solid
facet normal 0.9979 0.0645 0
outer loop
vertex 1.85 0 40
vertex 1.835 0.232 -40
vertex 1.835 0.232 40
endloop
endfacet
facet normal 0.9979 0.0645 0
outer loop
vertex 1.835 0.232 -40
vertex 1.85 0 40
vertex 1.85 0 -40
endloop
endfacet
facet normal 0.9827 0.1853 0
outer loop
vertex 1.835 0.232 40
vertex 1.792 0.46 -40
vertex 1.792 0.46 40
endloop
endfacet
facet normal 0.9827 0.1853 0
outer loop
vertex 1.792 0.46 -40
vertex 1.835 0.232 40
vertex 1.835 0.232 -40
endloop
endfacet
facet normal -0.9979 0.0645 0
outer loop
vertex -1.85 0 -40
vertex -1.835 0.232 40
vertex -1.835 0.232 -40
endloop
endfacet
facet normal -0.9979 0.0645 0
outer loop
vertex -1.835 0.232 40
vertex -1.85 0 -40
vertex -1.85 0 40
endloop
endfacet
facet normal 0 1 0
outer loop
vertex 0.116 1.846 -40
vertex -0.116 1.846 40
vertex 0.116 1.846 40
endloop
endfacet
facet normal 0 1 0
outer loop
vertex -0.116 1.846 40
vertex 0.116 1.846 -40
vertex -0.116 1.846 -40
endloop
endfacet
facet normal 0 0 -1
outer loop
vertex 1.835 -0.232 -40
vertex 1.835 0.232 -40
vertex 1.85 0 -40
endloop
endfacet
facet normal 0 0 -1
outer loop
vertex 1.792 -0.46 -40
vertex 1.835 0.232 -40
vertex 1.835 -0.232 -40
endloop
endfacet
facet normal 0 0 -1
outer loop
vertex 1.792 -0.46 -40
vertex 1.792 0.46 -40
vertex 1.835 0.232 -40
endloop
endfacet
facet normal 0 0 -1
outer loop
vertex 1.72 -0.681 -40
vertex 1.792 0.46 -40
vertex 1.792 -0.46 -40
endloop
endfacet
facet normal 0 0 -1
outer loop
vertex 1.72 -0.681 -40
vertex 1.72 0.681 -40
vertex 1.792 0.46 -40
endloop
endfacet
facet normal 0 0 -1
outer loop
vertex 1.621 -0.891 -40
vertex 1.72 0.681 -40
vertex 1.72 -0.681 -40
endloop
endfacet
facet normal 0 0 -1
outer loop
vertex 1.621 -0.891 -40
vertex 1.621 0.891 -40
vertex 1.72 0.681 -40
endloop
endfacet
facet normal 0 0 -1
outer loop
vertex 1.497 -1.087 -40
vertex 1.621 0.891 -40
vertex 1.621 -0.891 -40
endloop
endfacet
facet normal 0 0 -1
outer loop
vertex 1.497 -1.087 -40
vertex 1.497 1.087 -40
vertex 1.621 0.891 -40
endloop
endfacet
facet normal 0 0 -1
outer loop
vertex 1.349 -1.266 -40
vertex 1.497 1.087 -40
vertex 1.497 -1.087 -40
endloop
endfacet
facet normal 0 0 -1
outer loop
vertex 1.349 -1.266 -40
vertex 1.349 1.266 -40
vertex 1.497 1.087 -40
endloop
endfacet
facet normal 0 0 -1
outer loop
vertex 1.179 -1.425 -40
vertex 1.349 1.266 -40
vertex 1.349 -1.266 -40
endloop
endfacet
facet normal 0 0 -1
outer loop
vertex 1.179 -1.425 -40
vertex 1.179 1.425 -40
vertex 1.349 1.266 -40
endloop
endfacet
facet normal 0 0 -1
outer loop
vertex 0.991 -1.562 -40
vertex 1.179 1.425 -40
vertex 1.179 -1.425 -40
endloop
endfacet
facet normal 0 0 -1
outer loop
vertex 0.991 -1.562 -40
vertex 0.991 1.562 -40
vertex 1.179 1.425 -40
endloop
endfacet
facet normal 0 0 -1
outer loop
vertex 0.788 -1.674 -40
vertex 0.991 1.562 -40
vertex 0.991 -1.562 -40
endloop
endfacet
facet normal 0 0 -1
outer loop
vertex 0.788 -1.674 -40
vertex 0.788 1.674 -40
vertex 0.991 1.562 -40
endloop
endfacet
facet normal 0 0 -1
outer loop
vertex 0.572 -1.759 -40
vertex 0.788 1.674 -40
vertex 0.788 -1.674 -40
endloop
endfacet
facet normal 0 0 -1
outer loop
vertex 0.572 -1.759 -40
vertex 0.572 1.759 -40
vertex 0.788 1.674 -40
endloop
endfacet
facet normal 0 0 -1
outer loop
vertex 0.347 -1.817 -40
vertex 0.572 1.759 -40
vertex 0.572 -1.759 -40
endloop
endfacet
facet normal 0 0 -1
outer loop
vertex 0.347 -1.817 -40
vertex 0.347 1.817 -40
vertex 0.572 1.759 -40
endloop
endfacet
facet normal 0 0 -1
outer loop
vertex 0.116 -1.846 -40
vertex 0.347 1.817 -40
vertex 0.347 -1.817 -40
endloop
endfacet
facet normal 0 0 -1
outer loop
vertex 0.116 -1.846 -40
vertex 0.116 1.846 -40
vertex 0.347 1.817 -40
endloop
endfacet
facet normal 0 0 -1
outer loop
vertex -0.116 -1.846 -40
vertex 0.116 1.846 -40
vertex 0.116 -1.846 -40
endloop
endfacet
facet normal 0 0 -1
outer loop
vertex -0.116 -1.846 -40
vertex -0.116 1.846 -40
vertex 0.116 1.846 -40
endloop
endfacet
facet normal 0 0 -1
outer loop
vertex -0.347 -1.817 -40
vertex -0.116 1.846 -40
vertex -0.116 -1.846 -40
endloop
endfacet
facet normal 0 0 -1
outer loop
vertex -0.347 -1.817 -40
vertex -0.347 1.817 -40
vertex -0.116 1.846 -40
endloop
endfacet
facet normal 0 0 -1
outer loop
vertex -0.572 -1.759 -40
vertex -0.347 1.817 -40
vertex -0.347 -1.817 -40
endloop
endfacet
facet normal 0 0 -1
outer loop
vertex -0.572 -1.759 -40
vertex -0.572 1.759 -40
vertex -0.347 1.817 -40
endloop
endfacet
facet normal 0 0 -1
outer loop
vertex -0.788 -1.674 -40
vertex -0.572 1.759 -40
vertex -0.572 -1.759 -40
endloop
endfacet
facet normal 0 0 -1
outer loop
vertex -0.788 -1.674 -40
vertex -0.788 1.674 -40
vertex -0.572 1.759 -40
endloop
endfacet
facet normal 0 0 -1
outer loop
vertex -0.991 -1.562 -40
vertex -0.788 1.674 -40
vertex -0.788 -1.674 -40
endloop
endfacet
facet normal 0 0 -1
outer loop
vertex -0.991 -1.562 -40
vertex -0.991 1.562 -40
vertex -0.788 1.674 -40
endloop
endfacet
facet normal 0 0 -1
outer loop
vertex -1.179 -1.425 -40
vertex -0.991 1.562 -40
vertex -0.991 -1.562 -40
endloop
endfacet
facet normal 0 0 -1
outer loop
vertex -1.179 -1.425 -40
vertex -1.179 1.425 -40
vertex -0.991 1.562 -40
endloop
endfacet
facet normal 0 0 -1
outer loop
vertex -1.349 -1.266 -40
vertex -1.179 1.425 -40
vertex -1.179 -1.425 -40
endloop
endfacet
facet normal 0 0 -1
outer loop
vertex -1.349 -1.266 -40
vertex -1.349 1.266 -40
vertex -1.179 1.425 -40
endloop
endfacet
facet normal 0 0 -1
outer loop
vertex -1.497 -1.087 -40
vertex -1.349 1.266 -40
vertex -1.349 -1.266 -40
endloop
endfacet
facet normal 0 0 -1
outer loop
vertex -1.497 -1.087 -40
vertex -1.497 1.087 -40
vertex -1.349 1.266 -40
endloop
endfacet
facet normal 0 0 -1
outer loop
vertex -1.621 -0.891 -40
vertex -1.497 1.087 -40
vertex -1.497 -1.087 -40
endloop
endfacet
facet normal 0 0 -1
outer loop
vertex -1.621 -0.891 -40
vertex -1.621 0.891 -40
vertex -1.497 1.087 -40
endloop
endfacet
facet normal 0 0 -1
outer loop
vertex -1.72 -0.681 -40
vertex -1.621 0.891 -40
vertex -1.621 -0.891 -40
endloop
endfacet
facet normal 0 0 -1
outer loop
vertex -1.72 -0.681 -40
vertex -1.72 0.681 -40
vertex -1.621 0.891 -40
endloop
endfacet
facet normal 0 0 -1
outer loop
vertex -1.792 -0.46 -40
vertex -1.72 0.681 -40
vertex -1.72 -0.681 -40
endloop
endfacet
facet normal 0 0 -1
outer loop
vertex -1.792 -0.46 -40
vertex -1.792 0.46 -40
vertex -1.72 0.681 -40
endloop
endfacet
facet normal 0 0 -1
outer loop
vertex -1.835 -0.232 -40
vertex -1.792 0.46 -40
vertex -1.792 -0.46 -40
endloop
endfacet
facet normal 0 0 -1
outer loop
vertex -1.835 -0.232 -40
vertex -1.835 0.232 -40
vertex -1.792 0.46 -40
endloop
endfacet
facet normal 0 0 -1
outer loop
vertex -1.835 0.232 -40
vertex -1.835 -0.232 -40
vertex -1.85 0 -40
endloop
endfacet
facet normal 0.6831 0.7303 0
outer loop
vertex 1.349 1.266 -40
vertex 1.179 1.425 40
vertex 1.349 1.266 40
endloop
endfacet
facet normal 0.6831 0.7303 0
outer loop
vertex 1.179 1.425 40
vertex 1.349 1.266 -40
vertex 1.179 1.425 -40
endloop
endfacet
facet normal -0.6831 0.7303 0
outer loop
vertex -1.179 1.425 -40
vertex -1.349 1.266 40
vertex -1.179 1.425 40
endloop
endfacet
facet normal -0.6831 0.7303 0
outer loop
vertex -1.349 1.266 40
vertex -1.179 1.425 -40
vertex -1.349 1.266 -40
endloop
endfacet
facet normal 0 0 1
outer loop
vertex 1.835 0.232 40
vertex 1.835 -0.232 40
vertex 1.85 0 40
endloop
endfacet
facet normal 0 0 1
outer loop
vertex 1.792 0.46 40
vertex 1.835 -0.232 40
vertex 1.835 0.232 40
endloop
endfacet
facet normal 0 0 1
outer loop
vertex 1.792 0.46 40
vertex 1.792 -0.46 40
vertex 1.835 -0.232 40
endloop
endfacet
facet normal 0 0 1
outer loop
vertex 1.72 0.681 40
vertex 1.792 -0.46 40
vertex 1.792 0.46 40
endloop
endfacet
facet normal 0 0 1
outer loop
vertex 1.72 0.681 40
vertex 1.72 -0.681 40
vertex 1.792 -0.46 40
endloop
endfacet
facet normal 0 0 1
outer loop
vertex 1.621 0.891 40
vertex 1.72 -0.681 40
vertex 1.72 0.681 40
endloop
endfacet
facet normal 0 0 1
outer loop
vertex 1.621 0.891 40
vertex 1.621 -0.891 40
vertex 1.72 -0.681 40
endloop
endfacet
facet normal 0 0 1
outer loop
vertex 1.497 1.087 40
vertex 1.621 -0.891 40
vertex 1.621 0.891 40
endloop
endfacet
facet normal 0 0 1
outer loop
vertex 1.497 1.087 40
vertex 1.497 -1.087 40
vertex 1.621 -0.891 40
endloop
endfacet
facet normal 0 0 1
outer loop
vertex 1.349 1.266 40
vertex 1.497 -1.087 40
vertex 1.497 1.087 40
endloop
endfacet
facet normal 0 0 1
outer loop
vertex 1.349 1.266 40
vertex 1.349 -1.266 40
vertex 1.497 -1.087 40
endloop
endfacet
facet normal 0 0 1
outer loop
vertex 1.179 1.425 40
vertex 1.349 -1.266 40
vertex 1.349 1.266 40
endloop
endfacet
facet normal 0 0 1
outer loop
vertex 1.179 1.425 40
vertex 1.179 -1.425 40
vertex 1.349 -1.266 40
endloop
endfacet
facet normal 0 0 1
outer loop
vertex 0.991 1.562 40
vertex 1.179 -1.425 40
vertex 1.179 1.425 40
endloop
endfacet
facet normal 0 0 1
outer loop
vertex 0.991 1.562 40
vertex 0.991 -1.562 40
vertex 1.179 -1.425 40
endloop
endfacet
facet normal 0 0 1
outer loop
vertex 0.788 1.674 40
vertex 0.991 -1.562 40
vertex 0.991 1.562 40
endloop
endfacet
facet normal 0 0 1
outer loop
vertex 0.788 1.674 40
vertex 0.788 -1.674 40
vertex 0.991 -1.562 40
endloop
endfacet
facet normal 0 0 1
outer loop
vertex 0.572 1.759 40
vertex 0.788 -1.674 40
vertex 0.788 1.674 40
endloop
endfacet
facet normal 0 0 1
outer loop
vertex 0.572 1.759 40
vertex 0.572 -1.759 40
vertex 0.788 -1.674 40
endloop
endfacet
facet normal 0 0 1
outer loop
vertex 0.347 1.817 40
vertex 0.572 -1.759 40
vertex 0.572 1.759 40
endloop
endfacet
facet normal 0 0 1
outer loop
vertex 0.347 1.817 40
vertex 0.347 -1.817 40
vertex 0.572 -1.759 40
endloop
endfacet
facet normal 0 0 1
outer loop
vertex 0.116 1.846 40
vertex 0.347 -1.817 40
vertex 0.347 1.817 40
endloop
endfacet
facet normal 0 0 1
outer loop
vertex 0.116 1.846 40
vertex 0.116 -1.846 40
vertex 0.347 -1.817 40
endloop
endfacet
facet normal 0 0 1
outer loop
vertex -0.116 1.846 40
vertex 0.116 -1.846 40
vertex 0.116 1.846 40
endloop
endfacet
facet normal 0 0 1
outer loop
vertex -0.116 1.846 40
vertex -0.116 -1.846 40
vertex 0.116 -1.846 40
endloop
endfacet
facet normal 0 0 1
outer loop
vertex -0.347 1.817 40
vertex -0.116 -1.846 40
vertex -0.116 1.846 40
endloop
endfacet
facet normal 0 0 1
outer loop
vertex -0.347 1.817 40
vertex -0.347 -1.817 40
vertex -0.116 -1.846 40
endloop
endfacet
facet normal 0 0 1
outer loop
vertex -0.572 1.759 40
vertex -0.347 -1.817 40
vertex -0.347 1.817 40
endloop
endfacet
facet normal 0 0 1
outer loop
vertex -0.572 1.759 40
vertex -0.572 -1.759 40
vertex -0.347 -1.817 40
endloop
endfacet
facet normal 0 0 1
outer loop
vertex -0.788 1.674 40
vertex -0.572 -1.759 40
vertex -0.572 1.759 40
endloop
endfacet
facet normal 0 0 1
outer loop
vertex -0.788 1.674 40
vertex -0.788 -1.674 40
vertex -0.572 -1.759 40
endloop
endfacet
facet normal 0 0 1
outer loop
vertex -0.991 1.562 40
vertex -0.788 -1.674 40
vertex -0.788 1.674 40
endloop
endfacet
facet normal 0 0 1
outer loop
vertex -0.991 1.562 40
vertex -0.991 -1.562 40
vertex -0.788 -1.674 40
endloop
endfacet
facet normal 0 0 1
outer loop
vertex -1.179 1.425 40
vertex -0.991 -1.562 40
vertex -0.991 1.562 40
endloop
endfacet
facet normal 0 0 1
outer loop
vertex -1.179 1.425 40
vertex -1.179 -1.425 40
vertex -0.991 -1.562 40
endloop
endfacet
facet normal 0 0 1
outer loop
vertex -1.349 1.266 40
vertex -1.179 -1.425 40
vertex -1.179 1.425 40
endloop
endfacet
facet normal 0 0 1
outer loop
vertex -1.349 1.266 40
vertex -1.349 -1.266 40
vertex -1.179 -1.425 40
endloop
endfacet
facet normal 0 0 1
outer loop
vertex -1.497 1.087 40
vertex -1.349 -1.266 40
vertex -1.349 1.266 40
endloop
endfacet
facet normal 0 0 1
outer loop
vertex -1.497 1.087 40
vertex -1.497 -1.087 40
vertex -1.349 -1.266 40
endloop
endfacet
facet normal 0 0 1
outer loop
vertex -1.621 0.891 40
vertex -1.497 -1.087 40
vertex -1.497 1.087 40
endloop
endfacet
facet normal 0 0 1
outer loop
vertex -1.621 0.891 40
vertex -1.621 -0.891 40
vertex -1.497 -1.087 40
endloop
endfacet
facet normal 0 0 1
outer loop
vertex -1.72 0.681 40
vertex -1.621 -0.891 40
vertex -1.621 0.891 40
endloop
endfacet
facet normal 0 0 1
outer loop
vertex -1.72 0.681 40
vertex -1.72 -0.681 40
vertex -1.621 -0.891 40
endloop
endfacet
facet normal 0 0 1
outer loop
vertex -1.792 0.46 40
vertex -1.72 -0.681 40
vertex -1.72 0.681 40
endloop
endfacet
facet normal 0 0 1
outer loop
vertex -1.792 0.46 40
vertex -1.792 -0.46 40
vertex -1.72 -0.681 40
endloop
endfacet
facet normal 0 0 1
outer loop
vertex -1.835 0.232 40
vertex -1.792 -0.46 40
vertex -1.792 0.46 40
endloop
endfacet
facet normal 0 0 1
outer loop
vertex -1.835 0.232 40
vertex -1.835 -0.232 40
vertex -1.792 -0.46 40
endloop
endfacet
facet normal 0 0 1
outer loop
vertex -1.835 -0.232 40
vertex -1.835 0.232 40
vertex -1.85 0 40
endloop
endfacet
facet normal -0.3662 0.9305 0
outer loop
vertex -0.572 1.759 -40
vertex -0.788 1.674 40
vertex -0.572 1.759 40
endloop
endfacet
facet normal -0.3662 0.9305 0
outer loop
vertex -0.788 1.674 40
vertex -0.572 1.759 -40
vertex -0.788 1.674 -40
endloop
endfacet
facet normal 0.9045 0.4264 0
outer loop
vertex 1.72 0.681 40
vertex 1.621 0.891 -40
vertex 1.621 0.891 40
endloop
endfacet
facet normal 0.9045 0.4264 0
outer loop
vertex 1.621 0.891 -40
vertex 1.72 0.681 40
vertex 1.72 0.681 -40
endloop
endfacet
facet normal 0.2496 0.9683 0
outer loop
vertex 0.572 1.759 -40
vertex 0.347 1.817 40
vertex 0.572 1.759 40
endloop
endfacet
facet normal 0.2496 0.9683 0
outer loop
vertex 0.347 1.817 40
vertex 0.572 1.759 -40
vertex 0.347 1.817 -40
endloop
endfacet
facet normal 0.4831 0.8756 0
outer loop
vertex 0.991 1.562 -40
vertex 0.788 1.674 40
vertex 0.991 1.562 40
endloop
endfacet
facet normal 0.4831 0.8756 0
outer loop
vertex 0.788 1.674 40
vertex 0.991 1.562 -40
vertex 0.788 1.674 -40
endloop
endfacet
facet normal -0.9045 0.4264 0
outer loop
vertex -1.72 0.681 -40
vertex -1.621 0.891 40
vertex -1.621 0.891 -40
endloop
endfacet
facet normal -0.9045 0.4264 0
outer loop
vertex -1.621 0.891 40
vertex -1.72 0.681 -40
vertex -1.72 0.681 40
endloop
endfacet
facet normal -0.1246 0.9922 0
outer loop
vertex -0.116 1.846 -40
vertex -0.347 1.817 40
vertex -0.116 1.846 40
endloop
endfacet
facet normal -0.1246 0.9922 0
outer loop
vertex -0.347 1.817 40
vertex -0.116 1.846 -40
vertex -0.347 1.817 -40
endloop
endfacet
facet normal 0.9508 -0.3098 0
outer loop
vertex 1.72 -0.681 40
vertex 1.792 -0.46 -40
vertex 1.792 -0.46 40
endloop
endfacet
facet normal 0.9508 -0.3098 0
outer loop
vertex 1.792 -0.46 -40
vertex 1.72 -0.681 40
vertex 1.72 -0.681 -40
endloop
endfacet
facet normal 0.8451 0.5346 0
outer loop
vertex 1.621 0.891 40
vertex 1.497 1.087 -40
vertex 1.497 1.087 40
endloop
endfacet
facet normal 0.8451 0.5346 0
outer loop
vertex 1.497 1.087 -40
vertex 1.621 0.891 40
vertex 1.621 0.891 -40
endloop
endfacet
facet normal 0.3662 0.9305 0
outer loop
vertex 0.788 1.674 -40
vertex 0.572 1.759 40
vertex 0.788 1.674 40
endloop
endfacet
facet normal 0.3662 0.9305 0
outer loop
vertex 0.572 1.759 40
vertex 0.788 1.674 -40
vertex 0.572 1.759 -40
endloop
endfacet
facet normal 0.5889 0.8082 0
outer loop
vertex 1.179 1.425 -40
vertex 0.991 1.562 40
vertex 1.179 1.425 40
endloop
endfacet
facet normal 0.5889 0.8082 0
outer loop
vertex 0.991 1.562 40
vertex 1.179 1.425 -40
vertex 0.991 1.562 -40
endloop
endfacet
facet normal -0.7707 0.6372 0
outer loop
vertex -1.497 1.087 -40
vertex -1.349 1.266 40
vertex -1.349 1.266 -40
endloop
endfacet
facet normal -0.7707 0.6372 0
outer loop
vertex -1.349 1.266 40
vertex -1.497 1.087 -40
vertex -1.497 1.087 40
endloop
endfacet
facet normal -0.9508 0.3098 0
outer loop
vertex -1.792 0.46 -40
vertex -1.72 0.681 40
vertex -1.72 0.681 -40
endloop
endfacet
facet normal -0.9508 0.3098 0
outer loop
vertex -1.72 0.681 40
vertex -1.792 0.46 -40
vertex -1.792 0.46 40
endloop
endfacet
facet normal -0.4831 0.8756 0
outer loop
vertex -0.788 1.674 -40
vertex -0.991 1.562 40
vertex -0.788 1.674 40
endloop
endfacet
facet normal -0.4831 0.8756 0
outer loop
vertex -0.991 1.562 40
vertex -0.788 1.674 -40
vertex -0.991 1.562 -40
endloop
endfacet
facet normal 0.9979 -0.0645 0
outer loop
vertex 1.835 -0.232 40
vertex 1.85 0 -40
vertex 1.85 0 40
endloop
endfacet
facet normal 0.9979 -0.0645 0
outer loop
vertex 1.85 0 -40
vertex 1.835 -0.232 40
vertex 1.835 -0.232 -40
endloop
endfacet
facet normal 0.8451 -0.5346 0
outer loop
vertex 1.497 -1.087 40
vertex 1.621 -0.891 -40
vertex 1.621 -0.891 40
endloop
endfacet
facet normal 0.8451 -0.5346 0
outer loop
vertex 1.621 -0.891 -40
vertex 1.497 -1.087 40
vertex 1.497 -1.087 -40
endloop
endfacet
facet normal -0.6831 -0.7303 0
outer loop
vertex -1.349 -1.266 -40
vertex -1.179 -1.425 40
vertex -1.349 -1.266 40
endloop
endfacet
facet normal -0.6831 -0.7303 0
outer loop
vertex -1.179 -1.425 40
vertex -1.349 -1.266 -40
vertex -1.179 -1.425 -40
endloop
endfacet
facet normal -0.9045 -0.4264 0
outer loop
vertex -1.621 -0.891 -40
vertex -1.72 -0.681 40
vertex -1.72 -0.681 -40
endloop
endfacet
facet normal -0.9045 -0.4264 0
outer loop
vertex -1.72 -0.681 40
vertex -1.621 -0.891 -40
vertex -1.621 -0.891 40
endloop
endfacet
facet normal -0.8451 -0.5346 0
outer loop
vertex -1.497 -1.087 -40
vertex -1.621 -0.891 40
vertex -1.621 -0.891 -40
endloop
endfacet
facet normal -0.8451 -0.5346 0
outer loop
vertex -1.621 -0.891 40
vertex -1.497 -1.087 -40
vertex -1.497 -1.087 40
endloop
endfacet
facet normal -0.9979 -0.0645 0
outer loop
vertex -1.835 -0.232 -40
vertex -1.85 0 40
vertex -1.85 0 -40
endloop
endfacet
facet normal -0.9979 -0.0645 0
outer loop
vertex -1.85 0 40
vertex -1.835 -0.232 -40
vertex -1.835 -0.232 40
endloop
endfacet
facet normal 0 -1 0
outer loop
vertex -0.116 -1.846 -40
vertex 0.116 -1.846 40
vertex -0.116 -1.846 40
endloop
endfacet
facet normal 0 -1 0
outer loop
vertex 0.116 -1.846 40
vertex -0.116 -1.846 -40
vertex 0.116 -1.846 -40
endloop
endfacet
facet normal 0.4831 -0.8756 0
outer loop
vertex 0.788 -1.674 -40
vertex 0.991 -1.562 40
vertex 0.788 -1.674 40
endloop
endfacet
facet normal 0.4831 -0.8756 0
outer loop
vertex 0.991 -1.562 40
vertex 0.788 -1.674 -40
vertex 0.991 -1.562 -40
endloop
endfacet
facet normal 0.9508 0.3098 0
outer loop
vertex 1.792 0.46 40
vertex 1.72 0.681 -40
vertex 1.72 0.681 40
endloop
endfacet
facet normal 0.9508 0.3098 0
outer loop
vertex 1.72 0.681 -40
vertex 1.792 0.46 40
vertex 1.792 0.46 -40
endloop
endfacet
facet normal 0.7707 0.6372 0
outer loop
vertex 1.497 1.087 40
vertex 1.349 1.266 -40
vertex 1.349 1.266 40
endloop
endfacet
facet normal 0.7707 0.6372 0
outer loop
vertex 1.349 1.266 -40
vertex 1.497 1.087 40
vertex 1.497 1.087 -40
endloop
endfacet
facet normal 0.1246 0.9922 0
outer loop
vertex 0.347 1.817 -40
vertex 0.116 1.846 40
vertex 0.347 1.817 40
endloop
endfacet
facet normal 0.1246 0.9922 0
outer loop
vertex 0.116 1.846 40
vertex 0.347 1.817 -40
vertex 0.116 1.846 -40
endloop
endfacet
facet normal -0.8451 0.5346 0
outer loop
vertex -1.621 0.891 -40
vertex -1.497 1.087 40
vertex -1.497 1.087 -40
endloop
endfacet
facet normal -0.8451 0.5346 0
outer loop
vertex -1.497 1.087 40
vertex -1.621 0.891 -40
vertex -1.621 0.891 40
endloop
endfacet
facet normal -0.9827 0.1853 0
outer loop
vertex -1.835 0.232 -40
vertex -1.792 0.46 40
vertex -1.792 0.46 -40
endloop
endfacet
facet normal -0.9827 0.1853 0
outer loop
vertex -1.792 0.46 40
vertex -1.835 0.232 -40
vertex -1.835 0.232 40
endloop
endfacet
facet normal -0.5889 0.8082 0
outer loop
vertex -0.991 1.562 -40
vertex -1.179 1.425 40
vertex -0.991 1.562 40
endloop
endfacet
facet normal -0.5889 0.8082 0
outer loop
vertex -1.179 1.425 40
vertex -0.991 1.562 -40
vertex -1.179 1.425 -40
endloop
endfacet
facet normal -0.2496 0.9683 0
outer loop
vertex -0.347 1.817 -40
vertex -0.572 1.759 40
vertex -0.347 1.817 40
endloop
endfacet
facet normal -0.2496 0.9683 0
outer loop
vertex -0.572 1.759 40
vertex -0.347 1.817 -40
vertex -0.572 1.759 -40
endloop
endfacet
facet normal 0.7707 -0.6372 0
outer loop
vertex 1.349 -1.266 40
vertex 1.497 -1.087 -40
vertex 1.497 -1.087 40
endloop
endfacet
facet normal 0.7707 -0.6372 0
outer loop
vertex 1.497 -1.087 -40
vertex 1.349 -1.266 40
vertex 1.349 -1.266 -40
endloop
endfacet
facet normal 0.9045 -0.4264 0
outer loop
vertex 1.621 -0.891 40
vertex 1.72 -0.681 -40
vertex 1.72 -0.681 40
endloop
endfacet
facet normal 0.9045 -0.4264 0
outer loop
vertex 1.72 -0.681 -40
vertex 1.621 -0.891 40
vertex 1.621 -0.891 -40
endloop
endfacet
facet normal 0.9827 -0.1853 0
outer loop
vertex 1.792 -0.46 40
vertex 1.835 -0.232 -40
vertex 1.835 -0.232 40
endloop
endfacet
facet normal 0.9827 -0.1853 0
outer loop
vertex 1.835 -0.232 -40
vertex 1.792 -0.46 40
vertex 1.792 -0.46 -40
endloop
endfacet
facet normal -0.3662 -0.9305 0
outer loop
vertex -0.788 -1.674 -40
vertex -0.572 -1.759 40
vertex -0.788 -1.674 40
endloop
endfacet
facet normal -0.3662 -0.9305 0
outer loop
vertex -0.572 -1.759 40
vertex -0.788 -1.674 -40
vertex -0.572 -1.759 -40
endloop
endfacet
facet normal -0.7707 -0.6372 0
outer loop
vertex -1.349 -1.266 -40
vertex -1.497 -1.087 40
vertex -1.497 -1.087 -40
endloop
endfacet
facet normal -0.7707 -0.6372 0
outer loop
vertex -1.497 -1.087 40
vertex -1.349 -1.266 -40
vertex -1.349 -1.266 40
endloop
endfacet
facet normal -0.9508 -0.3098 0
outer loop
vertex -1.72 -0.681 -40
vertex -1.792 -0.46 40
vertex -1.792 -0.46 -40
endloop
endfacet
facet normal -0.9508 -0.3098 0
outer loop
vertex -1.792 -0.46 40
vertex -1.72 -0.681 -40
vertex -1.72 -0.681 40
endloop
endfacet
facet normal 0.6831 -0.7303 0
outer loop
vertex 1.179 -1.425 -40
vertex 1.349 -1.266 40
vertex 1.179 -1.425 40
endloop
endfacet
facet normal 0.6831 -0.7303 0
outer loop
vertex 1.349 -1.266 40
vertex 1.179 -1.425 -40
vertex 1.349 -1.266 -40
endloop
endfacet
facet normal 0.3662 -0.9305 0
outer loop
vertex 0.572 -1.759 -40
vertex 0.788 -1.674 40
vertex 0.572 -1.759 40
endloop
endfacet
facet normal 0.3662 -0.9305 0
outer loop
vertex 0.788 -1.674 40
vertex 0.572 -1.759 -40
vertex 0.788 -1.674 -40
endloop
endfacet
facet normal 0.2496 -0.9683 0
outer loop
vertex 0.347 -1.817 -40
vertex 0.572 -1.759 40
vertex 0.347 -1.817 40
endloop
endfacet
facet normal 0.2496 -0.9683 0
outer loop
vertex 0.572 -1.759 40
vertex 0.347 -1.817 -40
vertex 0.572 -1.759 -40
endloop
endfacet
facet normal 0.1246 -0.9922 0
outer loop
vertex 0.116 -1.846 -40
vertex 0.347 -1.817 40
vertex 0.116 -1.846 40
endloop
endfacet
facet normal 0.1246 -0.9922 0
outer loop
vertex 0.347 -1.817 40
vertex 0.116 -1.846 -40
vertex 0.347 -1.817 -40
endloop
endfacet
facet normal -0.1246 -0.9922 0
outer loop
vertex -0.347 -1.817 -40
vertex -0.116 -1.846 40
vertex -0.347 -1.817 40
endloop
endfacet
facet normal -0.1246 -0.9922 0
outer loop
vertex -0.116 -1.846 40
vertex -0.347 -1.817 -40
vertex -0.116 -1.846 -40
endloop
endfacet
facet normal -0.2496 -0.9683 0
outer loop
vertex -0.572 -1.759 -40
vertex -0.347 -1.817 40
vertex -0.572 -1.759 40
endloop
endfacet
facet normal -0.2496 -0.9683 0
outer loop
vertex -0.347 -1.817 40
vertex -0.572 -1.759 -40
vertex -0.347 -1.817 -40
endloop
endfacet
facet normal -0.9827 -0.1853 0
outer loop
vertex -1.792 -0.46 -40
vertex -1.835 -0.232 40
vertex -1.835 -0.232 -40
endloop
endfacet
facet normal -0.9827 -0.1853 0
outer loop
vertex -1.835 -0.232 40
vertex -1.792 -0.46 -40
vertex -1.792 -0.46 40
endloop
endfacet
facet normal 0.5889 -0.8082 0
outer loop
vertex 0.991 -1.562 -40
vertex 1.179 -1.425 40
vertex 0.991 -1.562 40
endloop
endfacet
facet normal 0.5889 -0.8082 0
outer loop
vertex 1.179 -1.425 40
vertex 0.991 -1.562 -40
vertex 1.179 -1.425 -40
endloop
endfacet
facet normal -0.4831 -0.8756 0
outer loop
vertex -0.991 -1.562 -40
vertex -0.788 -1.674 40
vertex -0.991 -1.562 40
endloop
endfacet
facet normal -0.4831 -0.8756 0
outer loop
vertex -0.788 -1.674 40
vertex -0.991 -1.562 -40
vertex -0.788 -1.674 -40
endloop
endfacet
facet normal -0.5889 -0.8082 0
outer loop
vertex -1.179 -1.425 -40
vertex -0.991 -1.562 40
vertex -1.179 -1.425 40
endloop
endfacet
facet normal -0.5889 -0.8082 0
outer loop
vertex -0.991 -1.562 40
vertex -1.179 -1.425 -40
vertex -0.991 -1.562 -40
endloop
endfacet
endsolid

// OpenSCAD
$fn = 50;


difference() {
	union() {
		translate(v = [0, 0, -40.0000000000]) {
			cylinder(h = 80, r = 1.8500000000);
		}
	}
	union() {
		translate(v = [0, 0, -100.0000000000]) {
			cylinder(h = 200, r = 0);
		}
	}
}
